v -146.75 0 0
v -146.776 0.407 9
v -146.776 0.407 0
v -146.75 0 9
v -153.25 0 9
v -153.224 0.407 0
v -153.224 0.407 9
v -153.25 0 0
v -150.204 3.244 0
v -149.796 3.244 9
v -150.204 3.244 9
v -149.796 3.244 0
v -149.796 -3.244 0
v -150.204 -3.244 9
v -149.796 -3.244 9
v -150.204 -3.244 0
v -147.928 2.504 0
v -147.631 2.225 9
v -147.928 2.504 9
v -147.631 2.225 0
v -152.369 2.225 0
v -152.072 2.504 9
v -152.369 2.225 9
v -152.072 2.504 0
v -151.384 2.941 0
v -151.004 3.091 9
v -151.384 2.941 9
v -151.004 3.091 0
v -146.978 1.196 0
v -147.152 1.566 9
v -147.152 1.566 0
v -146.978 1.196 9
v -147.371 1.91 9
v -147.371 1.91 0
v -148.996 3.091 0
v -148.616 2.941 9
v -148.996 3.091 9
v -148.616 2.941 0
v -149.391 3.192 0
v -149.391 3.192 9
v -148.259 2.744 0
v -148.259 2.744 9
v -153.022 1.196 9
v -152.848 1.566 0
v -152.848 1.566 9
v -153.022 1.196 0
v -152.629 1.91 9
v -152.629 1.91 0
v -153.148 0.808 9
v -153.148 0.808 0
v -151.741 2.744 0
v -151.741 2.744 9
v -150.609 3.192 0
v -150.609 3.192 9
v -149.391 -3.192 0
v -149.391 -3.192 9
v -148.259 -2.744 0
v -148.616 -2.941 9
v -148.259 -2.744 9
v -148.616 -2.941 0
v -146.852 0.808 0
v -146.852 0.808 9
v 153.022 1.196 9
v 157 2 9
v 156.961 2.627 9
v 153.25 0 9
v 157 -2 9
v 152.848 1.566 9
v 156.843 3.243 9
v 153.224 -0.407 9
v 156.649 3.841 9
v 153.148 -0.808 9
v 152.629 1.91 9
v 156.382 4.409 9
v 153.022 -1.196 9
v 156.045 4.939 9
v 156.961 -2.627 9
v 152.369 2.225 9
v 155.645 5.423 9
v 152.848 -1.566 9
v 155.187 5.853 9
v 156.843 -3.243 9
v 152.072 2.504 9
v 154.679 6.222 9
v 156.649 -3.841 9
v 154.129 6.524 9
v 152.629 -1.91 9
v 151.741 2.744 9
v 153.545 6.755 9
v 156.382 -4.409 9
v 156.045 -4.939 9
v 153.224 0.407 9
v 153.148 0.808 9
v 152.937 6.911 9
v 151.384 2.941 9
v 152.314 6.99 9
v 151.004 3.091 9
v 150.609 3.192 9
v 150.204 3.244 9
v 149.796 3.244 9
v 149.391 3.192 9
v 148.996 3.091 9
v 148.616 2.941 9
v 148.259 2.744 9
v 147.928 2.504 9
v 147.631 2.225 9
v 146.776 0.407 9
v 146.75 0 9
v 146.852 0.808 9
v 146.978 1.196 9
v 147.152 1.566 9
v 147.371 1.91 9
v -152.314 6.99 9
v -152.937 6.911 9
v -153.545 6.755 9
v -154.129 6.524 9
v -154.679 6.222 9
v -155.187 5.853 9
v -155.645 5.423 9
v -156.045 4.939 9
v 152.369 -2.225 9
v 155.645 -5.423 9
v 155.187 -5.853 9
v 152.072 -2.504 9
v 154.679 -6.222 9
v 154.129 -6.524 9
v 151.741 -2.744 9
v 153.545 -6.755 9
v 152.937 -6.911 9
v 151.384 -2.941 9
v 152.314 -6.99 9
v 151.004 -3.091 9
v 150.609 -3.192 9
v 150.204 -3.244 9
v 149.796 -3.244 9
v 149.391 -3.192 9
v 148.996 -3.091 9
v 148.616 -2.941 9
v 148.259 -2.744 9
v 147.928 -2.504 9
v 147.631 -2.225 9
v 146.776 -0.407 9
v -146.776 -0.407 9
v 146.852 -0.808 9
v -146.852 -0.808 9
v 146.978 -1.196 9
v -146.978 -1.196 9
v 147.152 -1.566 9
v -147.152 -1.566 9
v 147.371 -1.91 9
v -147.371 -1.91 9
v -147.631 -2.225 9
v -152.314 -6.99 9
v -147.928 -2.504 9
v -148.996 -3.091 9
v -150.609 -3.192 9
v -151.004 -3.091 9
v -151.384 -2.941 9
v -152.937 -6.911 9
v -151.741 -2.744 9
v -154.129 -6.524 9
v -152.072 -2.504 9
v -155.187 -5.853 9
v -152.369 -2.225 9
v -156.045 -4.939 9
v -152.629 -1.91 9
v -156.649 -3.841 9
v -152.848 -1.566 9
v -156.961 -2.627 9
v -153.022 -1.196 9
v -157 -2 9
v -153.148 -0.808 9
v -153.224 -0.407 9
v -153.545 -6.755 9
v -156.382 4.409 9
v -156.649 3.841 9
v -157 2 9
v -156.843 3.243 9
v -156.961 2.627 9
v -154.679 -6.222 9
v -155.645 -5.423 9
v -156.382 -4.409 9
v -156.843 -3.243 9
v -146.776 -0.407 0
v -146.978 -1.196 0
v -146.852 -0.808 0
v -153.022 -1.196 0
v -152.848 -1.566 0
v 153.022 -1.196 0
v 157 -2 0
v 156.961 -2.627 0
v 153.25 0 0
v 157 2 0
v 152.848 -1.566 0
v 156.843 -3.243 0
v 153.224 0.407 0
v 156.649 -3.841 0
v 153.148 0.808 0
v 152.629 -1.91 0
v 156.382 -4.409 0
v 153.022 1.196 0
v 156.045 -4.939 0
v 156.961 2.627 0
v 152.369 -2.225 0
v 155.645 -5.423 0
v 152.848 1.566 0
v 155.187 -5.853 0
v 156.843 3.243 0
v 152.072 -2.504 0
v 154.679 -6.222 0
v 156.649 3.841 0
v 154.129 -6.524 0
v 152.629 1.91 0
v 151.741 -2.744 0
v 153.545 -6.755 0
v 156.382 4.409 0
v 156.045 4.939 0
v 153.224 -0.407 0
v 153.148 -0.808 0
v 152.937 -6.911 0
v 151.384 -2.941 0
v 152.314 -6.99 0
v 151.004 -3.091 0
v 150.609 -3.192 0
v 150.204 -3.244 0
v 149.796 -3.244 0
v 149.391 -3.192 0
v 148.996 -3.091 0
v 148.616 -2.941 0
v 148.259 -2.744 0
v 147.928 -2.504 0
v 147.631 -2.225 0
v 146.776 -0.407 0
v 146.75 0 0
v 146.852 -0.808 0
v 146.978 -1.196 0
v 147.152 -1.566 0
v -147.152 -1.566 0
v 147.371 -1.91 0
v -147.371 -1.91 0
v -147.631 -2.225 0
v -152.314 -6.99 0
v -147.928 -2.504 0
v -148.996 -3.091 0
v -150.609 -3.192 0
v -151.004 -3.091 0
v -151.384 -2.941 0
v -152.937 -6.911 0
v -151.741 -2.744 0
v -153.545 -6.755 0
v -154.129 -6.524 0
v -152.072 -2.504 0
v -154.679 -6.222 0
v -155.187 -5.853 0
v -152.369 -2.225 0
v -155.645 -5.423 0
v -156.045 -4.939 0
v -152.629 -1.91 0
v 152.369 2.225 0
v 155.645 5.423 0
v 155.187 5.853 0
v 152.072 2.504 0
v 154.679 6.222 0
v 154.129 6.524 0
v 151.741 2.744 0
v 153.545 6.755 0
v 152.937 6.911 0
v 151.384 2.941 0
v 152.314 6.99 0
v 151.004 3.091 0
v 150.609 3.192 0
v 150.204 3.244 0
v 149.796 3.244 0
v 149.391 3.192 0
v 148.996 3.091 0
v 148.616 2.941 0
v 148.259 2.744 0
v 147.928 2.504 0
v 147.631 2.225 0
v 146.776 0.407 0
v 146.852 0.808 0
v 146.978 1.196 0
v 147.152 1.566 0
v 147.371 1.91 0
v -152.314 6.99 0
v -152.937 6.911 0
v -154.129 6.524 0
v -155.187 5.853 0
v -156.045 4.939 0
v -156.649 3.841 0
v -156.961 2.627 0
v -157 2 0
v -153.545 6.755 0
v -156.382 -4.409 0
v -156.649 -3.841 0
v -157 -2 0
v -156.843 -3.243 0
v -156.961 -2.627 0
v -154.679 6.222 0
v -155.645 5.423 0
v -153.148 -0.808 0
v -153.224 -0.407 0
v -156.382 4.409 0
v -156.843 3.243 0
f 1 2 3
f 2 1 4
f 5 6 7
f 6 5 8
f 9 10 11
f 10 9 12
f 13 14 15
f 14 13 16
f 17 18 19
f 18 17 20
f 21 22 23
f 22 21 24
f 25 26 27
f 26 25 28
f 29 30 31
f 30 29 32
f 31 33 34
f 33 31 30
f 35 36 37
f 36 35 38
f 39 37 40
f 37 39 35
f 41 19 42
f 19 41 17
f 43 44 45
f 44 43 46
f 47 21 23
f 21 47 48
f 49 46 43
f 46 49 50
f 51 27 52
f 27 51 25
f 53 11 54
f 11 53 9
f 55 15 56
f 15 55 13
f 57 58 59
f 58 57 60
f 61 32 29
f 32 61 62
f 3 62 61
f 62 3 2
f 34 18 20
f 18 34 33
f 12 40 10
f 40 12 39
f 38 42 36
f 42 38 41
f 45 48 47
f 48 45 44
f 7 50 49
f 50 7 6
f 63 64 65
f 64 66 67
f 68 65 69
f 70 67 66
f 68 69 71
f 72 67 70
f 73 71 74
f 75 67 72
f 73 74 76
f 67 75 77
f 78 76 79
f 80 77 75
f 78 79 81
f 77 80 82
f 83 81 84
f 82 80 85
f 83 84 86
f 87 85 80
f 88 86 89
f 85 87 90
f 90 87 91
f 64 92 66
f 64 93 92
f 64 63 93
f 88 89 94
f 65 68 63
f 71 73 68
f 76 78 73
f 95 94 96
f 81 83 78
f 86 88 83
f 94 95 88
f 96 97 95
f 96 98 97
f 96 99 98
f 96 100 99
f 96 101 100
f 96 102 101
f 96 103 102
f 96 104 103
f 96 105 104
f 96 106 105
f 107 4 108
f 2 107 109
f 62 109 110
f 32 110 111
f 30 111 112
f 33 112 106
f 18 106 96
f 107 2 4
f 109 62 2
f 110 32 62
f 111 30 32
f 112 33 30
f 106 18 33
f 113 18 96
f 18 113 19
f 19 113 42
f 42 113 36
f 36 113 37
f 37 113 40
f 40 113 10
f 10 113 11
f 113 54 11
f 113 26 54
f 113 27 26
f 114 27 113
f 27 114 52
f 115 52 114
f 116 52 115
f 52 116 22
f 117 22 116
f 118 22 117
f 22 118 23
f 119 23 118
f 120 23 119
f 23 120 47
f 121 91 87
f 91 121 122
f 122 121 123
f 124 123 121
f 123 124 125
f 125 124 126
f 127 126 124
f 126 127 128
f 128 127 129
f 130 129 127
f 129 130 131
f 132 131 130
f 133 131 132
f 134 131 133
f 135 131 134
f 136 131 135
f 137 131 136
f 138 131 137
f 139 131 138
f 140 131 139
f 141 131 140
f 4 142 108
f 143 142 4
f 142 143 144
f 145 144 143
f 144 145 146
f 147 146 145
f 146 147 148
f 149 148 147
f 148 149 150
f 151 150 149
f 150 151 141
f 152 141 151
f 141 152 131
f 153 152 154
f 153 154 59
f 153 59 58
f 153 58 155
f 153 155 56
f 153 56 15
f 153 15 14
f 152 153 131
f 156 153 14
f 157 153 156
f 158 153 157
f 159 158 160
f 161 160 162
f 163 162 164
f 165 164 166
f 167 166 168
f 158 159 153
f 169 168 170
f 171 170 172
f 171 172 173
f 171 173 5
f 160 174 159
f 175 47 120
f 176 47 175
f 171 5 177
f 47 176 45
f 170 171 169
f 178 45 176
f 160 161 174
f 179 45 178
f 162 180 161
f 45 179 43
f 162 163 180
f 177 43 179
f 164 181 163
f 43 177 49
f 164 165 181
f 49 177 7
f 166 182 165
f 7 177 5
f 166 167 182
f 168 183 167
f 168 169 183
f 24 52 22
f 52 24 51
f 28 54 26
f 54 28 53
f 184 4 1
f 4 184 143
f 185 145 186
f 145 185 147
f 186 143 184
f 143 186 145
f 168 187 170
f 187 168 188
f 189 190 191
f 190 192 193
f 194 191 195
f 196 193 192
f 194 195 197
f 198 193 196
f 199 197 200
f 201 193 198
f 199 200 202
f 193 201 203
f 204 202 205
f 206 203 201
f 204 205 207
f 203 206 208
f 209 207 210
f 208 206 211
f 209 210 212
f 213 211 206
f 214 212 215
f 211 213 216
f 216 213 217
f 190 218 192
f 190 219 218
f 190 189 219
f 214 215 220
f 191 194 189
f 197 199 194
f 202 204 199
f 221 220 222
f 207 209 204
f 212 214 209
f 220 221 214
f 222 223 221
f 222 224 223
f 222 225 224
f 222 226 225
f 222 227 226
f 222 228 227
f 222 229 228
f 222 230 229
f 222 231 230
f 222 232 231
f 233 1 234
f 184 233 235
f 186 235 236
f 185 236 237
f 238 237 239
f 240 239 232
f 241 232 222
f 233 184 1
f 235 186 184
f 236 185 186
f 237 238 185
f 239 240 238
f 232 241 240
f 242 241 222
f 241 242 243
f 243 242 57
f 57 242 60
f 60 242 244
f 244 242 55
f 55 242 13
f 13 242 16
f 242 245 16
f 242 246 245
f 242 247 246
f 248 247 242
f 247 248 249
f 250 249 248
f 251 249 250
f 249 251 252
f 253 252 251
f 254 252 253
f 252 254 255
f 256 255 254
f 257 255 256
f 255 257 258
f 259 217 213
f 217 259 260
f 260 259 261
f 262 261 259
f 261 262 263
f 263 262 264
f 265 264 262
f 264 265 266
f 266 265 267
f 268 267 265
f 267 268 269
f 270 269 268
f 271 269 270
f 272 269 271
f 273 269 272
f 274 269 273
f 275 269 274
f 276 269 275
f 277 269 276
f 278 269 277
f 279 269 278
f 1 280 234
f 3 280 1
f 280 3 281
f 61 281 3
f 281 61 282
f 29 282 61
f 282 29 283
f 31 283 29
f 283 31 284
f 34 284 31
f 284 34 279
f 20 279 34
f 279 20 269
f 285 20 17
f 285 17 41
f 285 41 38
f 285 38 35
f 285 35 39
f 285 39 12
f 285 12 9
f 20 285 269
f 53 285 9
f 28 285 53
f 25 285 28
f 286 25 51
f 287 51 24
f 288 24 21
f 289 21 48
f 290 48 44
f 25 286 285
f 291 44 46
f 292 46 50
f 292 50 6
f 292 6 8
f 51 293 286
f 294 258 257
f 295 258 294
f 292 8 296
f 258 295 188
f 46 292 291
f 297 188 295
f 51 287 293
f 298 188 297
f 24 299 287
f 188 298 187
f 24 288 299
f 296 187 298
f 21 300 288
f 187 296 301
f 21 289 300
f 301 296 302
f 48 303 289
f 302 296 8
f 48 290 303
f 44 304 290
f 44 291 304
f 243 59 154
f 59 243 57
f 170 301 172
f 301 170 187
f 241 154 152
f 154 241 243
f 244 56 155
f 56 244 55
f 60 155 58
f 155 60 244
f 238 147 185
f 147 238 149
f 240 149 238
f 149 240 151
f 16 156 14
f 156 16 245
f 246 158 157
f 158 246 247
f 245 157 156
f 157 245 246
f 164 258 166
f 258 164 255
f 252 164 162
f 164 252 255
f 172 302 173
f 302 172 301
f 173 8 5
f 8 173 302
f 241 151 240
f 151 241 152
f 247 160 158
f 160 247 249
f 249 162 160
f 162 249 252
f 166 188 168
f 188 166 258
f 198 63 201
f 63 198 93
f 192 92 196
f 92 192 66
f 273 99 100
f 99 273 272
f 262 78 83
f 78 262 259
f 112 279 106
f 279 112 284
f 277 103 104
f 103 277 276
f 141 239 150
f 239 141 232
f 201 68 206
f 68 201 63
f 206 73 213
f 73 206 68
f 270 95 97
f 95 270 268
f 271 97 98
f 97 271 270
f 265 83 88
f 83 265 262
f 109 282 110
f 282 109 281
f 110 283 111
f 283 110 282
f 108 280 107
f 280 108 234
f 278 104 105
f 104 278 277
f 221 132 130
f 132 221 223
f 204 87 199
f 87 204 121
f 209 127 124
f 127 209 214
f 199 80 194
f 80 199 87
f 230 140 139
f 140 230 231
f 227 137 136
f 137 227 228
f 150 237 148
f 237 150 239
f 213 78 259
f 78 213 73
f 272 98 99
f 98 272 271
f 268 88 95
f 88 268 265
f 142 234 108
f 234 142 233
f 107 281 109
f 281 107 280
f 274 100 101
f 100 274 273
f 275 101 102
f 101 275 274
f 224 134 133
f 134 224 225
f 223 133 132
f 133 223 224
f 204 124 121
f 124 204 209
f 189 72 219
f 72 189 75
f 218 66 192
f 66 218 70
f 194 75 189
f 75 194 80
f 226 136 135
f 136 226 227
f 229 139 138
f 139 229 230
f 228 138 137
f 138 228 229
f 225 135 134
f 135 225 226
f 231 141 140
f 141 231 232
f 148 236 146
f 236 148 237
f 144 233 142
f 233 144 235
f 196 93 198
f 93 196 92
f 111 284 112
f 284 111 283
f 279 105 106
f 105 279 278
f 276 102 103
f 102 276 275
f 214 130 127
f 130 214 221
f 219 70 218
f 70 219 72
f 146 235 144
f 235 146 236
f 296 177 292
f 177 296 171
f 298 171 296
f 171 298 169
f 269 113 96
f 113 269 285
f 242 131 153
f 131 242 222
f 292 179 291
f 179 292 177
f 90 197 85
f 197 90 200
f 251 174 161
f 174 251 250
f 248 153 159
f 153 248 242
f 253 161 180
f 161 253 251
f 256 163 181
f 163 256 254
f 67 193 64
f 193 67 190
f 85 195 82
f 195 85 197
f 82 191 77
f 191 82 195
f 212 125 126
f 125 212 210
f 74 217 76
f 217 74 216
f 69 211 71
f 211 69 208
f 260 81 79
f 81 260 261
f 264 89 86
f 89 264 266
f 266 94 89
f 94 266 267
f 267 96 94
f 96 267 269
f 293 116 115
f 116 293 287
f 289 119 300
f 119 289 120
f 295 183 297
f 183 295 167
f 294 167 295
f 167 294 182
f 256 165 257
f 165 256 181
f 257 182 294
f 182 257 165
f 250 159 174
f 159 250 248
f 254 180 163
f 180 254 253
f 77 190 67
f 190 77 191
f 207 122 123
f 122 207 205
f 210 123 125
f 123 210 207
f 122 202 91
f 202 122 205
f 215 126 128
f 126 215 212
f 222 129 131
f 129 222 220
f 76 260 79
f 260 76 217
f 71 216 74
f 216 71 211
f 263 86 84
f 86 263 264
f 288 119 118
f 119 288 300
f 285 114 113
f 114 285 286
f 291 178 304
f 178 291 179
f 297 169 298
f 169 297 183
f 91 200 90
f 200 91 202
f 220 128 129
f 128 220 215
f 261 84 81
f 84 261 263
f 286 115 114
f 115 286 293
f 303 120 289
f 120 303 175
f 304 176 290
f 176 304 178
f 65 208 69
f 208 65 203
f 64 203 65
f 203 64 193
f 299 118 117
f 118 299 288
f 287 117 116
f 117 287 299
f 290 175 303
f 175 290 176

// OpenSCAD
$fn = 50;


difference() {
	union() {
		hull() {
			translate(v = [-152.0000000000, 2.0000000000, 0]) {
				cylinder(h = 9, r = 5);
			}
			translate(v = [152.0000000000, 2.0000000000, 0]) {
				cylinder(h = 9, r = 5);
			}
			translate(v = [-152.0000000000, -2.0000000000, 0]) {
				cylinder(h = 9, r = 5);
			}
			translate(v = [152.0000000000, -2.0000000000, 0]) {
				cylinder(h = 9, r = 5);
			}
		}
	}
	union() {
		translate(v = [-150.0000000000, 0.0000000000, 0]) {
			cylinder(h = 9, r = 3.2500000000);
		}
		translate(v = [150.0000000000, 0.0000000000, 0]) {
			cylinder(h = 9, r = 3.2500000000);
		}
		translate(v = [-150.0000000000, 0.0000000000, 0]) {
			cylinder(h = 9, r = 1.8000000000);
		}
		translate(v = [150.0000000000, 0.0000000000, 0]) {
			cylinder(h = 9, r = 1.8000000000);
		}
		translate(v = [-150.0000000000, 0.0000000000, 0]) {
			cylinder(h = 9, r = 1.8000000000);
		}
		translate(v = [150.0000000000, 0.0000000000, 0]) {
			cylinder(h = 9, r = 1.8000000000);
		}
		translate(v = [-150.0000000000, 0.0000000000, 0]) {
			cylinder(h = 9, r = 1.8000000000);
		}
		translate(v = [150.0000000000, 0.0000000000, 0]) {
			cylinder(h = 9, r = 1.8000000000);
		}
	}
}
